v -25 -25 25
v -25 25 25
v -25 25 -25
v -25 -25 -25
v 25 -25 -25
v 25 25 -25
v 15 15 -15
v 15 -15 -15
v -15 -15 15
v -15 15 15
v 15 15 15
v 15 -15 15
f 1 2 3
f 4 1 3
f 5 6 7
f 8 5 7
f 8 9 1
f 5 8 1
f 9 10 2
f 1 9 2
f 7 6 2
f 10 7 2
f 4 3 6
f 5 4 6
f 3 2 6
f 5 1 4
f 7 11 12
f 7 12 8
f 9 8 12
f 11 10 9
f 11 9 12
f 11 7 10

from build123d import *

# Parameters (mm, degrees)
PAD_DEPTH    = 25
SKETCH001_W  = 30
SKETCH001_H  = 30
PAD001_DEPTH = 15


with BuildPart() as part:
    # Sketch → Pad (new body, symmetric)
    with BuildSketch(Plane.XZ):
        Polygon((-25, 25), (-25, -25), (25, -25), align=None)
    extrude(amount=PAD_DEPTH, both=True)

    # Sketch001 → Pad001 (join, symmetric)
    with BuildSketch(Plane.XZ):
        Rectangle(SKETCH001_W, SKETCH001_H)
    extrude(amount=PAD001_DEPTH, both=True)


solid = part.part
